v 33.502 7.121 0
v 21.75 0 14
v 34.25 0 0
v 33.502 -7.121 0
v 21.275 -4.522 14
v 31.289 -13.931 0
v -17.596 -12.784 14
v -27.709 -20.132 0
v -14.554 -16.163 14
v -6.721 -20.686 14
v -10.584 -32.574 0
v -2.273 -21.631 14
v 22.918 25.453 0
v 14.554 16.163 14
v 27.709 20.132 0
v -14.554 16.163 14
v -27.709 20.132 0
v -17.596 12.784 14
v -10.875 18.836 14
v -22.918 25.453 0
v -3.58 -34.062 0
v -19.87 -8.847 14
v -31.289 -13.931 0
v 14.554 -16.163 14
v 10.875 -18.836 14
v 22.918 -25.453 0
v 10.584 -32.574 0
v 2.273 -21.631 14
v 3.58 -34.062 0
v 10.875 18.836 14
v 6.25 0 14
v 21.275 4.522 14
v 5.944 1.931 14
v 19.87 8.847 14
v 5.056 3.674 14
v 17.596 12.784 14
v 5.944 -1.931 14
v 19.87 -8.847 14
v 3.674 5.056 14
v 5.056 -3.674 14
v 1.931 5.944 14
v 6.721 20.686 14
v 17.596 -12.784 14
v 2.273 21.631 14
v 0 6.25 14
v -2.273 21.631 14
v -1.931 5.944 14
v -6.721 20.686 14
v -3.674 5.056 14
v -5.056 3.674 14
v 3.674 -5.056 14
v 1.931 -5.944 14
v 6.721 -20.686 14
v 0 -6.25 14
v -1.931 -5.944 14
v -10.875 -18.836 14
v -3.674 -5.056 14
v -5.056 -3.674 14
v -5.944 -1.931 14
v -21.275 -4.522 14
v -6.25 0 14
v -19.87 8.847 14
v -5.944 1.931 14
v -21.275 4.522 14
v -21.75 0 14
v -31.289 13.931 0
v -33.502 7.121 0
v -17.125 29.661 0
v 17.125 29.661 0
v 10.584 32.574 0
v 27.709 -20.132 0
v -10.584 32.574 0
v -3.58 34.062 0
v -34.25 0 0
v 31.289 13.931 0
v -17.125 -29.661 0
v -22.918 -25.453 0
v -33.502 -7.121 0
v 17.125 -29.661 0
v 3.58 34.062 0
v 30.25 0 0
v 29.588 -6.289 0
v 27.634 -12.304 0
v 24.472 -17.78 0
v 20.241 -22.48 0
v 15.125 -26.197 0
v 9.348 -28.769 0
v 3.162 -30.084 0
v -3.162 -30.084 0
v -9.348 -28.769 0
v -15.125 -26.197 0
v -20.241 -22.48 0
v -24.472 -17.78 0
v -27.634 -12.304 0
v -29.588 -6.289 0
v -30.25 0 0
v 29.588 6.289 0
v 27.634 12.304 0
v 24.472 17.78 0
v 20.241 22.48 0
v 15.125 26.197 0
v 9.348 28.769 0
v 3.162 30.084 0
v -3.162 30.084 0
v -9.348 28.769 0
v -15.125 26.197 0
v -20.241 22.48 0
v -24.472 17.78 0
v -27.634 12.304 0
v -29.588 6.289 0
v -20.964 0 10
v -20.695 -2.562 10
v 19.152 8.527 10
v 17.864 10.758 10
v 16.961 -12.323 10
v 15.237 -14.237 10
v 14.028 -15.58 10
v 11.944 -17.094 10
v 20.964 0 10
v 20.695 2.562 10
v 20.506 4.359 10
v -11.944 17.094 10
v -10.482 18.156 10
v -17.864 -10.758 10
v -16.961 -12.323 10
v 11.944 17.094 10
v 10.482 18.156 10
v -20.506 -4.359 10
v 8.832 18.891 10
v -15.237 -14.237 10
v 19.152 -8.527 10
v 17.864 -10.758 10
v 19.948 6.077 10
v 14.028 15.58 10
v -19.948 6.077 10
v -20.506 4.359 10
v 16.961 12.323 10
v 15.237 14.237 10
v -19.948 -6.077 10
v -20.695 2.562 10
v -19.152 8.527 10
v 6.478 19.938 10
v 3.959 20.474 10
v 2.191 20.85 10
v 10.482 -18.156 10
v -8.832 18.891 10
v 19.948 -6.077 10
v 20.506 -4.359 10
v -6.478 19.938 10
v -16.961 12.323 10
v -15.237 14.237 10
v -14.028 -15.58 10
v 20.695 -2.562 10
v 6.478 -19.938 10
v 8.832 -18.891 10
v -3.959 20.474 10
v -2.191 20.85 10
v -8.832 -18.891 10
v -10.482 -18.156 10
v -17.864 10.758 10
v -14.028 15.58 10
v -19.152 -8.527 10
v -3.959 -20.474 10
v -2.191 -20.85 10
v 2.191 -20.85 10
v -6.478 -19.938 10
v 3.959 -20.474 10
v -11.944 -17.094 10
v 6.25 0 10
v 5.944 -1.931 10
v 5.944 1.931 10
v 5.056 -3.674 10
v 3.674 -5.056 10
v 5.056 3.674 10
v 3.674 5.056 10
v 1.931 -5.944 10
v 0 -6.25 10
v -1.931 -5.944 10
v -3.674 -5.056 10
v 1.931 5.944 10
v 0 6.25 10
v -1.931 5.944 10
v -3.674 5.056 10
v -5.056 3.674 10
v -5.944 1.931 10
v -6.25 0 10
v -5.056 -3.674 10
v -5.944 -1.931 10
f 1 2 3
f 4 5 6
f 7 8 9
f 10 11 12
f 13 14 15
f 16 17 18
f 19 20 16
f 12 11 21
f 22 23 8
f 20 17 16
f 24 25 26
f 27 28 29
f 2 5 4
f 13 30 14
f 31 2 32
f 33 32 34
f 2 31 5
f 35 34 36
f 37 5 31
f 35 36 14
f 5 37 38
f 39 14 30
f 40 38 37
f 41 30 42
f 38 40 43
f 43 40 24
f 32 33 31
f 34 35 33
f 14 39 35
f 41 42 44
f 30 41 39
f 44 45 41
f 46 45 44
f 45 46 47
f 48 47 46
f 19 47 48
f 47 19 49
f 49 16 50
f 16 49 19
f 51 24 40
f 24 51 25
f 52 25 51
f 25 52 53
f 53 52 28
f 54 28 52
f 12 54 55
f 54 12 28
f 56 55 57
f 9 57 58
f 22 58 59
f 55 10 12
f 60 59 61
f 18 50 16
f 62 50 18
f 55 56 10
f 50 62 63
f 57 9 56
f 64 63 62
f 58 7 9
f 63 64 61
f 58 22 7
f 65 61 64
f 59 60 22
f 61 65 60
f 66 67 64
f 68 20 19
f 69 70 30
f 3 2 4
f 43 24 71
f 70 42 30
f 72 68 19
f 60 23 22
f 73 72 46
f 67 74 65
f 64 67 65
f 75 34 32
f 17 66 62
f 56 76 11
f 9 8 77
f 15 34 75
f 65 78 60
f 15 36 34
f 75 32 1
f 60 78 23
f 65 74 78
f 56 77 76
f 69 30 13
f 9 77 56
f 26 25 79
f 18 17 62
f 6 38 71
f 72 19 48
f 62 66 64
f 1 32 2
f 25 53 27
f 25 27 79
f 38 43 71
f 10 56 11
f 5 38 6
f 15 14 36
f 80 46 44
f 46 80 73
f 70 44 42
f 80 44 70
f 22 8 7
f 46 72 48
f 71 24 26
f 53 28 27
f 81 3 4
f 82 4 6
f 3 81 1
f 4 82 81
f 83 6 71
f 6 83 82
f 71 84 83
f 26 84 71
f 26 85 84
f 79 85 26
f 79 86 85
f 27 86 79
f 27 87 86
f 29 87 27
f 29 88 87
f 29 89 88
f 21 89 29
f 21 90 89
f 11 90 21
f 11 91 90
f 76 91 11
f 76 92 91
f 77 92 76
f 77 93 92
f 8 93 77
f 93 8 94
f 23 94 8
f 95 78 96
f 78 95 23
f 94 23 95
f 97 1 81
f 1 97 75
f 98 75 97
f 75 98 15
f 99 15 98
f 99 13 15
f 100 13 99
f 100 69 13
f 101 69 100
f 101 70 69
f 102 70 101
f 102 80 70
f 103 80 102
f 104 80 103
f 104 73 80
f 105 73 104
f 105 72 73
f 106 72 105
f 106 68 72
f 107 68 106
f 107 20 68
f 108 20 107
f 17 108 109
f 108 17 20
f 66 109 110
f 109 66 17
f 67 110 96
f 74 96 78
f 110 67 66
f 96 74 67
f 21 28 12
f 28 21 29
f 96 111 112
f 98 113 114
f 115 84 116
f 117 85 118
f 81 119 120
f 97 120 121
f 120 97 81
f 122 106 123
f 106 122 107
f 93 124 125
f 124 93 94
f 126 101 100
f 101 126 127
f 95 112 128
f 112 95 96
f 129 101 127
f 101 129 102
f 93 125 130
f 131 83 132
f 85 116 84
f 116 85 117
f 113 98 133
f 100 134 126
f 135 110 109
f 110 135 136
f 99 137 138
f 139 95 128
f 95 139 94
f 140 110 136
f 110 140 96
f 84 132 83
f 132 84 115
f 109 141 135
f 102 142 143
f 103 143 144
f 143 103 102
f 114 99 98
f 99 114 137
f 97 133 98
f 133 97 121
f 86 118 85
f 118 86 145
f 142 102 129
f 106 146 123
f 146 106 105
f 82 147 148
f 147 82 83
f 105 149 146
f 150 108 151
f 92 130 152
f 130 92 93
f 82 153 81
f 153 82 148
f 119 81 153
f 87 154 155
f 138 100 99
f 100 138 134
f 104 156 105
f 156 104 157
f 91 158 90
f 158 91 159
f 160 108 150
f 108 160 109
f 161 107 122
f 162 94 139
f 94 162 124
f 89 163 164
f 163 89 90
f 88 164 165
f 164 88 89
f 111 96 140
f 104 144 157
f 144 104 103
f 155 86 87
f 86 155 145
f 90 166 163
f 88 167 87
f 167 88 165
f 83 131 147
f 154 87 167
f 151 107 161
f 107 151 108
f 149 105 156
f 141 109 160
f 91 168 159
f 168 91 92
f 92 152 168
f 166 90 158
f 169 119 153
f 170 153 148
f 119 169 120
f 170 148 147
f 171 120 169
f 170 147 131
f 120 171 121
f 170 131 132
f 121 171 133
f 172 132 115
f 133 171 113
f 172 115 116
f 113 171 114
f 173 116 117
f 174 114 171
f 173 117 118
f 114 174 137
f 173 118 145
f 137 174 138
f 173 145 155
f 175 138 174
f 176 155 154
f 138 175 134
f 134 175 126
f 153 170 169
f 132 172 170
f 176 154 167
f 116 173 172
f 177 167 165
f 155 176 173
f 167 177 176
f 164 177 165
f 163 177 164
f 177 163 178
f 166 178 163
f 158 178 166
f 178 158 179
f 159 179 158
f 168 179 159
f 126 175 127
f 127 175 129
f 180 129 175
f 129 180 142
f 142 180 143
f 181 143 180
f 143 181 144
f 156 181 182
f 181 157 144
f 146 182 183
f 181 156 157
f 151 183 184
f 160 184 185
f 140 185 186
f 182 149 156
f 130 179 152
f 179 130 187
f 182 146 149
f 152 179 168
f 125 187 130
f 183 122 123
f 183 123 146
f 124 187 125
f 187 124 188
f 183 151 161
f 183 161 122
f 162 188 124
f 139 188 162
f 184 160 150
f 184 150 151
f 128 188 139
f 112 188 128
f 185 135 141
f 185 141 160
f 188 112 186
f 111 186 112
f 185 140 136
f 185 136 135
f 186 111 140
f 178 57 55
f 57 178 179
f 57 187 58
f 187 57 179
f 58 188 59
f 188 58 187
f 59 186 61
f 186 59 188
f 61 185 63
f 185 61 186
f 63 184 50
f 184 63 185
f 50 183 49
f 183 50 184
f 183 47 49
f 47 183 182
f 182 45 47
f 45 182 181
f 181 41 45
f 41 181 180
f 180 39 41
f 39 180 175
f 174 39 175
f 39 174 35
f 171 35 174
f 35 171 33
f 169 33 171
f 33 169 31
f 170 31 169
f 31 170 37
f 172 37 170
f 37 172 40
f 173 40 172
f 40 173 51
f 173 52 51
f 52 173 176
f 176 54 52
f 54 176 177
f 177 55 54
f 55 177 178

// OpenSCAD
// create outer circle


difference() {
cylinder(h=14, d1=68.5, d2=43.5);
translate([0, 0, -.0005])
cylinder(h=14.001, d1=60.5, d2=34.5);
}

translate([0, 0, 10]){
linear_extrude(height=4) {
difference() {
circle(d=43.5);
circle(d=12.5);
}
}
}
